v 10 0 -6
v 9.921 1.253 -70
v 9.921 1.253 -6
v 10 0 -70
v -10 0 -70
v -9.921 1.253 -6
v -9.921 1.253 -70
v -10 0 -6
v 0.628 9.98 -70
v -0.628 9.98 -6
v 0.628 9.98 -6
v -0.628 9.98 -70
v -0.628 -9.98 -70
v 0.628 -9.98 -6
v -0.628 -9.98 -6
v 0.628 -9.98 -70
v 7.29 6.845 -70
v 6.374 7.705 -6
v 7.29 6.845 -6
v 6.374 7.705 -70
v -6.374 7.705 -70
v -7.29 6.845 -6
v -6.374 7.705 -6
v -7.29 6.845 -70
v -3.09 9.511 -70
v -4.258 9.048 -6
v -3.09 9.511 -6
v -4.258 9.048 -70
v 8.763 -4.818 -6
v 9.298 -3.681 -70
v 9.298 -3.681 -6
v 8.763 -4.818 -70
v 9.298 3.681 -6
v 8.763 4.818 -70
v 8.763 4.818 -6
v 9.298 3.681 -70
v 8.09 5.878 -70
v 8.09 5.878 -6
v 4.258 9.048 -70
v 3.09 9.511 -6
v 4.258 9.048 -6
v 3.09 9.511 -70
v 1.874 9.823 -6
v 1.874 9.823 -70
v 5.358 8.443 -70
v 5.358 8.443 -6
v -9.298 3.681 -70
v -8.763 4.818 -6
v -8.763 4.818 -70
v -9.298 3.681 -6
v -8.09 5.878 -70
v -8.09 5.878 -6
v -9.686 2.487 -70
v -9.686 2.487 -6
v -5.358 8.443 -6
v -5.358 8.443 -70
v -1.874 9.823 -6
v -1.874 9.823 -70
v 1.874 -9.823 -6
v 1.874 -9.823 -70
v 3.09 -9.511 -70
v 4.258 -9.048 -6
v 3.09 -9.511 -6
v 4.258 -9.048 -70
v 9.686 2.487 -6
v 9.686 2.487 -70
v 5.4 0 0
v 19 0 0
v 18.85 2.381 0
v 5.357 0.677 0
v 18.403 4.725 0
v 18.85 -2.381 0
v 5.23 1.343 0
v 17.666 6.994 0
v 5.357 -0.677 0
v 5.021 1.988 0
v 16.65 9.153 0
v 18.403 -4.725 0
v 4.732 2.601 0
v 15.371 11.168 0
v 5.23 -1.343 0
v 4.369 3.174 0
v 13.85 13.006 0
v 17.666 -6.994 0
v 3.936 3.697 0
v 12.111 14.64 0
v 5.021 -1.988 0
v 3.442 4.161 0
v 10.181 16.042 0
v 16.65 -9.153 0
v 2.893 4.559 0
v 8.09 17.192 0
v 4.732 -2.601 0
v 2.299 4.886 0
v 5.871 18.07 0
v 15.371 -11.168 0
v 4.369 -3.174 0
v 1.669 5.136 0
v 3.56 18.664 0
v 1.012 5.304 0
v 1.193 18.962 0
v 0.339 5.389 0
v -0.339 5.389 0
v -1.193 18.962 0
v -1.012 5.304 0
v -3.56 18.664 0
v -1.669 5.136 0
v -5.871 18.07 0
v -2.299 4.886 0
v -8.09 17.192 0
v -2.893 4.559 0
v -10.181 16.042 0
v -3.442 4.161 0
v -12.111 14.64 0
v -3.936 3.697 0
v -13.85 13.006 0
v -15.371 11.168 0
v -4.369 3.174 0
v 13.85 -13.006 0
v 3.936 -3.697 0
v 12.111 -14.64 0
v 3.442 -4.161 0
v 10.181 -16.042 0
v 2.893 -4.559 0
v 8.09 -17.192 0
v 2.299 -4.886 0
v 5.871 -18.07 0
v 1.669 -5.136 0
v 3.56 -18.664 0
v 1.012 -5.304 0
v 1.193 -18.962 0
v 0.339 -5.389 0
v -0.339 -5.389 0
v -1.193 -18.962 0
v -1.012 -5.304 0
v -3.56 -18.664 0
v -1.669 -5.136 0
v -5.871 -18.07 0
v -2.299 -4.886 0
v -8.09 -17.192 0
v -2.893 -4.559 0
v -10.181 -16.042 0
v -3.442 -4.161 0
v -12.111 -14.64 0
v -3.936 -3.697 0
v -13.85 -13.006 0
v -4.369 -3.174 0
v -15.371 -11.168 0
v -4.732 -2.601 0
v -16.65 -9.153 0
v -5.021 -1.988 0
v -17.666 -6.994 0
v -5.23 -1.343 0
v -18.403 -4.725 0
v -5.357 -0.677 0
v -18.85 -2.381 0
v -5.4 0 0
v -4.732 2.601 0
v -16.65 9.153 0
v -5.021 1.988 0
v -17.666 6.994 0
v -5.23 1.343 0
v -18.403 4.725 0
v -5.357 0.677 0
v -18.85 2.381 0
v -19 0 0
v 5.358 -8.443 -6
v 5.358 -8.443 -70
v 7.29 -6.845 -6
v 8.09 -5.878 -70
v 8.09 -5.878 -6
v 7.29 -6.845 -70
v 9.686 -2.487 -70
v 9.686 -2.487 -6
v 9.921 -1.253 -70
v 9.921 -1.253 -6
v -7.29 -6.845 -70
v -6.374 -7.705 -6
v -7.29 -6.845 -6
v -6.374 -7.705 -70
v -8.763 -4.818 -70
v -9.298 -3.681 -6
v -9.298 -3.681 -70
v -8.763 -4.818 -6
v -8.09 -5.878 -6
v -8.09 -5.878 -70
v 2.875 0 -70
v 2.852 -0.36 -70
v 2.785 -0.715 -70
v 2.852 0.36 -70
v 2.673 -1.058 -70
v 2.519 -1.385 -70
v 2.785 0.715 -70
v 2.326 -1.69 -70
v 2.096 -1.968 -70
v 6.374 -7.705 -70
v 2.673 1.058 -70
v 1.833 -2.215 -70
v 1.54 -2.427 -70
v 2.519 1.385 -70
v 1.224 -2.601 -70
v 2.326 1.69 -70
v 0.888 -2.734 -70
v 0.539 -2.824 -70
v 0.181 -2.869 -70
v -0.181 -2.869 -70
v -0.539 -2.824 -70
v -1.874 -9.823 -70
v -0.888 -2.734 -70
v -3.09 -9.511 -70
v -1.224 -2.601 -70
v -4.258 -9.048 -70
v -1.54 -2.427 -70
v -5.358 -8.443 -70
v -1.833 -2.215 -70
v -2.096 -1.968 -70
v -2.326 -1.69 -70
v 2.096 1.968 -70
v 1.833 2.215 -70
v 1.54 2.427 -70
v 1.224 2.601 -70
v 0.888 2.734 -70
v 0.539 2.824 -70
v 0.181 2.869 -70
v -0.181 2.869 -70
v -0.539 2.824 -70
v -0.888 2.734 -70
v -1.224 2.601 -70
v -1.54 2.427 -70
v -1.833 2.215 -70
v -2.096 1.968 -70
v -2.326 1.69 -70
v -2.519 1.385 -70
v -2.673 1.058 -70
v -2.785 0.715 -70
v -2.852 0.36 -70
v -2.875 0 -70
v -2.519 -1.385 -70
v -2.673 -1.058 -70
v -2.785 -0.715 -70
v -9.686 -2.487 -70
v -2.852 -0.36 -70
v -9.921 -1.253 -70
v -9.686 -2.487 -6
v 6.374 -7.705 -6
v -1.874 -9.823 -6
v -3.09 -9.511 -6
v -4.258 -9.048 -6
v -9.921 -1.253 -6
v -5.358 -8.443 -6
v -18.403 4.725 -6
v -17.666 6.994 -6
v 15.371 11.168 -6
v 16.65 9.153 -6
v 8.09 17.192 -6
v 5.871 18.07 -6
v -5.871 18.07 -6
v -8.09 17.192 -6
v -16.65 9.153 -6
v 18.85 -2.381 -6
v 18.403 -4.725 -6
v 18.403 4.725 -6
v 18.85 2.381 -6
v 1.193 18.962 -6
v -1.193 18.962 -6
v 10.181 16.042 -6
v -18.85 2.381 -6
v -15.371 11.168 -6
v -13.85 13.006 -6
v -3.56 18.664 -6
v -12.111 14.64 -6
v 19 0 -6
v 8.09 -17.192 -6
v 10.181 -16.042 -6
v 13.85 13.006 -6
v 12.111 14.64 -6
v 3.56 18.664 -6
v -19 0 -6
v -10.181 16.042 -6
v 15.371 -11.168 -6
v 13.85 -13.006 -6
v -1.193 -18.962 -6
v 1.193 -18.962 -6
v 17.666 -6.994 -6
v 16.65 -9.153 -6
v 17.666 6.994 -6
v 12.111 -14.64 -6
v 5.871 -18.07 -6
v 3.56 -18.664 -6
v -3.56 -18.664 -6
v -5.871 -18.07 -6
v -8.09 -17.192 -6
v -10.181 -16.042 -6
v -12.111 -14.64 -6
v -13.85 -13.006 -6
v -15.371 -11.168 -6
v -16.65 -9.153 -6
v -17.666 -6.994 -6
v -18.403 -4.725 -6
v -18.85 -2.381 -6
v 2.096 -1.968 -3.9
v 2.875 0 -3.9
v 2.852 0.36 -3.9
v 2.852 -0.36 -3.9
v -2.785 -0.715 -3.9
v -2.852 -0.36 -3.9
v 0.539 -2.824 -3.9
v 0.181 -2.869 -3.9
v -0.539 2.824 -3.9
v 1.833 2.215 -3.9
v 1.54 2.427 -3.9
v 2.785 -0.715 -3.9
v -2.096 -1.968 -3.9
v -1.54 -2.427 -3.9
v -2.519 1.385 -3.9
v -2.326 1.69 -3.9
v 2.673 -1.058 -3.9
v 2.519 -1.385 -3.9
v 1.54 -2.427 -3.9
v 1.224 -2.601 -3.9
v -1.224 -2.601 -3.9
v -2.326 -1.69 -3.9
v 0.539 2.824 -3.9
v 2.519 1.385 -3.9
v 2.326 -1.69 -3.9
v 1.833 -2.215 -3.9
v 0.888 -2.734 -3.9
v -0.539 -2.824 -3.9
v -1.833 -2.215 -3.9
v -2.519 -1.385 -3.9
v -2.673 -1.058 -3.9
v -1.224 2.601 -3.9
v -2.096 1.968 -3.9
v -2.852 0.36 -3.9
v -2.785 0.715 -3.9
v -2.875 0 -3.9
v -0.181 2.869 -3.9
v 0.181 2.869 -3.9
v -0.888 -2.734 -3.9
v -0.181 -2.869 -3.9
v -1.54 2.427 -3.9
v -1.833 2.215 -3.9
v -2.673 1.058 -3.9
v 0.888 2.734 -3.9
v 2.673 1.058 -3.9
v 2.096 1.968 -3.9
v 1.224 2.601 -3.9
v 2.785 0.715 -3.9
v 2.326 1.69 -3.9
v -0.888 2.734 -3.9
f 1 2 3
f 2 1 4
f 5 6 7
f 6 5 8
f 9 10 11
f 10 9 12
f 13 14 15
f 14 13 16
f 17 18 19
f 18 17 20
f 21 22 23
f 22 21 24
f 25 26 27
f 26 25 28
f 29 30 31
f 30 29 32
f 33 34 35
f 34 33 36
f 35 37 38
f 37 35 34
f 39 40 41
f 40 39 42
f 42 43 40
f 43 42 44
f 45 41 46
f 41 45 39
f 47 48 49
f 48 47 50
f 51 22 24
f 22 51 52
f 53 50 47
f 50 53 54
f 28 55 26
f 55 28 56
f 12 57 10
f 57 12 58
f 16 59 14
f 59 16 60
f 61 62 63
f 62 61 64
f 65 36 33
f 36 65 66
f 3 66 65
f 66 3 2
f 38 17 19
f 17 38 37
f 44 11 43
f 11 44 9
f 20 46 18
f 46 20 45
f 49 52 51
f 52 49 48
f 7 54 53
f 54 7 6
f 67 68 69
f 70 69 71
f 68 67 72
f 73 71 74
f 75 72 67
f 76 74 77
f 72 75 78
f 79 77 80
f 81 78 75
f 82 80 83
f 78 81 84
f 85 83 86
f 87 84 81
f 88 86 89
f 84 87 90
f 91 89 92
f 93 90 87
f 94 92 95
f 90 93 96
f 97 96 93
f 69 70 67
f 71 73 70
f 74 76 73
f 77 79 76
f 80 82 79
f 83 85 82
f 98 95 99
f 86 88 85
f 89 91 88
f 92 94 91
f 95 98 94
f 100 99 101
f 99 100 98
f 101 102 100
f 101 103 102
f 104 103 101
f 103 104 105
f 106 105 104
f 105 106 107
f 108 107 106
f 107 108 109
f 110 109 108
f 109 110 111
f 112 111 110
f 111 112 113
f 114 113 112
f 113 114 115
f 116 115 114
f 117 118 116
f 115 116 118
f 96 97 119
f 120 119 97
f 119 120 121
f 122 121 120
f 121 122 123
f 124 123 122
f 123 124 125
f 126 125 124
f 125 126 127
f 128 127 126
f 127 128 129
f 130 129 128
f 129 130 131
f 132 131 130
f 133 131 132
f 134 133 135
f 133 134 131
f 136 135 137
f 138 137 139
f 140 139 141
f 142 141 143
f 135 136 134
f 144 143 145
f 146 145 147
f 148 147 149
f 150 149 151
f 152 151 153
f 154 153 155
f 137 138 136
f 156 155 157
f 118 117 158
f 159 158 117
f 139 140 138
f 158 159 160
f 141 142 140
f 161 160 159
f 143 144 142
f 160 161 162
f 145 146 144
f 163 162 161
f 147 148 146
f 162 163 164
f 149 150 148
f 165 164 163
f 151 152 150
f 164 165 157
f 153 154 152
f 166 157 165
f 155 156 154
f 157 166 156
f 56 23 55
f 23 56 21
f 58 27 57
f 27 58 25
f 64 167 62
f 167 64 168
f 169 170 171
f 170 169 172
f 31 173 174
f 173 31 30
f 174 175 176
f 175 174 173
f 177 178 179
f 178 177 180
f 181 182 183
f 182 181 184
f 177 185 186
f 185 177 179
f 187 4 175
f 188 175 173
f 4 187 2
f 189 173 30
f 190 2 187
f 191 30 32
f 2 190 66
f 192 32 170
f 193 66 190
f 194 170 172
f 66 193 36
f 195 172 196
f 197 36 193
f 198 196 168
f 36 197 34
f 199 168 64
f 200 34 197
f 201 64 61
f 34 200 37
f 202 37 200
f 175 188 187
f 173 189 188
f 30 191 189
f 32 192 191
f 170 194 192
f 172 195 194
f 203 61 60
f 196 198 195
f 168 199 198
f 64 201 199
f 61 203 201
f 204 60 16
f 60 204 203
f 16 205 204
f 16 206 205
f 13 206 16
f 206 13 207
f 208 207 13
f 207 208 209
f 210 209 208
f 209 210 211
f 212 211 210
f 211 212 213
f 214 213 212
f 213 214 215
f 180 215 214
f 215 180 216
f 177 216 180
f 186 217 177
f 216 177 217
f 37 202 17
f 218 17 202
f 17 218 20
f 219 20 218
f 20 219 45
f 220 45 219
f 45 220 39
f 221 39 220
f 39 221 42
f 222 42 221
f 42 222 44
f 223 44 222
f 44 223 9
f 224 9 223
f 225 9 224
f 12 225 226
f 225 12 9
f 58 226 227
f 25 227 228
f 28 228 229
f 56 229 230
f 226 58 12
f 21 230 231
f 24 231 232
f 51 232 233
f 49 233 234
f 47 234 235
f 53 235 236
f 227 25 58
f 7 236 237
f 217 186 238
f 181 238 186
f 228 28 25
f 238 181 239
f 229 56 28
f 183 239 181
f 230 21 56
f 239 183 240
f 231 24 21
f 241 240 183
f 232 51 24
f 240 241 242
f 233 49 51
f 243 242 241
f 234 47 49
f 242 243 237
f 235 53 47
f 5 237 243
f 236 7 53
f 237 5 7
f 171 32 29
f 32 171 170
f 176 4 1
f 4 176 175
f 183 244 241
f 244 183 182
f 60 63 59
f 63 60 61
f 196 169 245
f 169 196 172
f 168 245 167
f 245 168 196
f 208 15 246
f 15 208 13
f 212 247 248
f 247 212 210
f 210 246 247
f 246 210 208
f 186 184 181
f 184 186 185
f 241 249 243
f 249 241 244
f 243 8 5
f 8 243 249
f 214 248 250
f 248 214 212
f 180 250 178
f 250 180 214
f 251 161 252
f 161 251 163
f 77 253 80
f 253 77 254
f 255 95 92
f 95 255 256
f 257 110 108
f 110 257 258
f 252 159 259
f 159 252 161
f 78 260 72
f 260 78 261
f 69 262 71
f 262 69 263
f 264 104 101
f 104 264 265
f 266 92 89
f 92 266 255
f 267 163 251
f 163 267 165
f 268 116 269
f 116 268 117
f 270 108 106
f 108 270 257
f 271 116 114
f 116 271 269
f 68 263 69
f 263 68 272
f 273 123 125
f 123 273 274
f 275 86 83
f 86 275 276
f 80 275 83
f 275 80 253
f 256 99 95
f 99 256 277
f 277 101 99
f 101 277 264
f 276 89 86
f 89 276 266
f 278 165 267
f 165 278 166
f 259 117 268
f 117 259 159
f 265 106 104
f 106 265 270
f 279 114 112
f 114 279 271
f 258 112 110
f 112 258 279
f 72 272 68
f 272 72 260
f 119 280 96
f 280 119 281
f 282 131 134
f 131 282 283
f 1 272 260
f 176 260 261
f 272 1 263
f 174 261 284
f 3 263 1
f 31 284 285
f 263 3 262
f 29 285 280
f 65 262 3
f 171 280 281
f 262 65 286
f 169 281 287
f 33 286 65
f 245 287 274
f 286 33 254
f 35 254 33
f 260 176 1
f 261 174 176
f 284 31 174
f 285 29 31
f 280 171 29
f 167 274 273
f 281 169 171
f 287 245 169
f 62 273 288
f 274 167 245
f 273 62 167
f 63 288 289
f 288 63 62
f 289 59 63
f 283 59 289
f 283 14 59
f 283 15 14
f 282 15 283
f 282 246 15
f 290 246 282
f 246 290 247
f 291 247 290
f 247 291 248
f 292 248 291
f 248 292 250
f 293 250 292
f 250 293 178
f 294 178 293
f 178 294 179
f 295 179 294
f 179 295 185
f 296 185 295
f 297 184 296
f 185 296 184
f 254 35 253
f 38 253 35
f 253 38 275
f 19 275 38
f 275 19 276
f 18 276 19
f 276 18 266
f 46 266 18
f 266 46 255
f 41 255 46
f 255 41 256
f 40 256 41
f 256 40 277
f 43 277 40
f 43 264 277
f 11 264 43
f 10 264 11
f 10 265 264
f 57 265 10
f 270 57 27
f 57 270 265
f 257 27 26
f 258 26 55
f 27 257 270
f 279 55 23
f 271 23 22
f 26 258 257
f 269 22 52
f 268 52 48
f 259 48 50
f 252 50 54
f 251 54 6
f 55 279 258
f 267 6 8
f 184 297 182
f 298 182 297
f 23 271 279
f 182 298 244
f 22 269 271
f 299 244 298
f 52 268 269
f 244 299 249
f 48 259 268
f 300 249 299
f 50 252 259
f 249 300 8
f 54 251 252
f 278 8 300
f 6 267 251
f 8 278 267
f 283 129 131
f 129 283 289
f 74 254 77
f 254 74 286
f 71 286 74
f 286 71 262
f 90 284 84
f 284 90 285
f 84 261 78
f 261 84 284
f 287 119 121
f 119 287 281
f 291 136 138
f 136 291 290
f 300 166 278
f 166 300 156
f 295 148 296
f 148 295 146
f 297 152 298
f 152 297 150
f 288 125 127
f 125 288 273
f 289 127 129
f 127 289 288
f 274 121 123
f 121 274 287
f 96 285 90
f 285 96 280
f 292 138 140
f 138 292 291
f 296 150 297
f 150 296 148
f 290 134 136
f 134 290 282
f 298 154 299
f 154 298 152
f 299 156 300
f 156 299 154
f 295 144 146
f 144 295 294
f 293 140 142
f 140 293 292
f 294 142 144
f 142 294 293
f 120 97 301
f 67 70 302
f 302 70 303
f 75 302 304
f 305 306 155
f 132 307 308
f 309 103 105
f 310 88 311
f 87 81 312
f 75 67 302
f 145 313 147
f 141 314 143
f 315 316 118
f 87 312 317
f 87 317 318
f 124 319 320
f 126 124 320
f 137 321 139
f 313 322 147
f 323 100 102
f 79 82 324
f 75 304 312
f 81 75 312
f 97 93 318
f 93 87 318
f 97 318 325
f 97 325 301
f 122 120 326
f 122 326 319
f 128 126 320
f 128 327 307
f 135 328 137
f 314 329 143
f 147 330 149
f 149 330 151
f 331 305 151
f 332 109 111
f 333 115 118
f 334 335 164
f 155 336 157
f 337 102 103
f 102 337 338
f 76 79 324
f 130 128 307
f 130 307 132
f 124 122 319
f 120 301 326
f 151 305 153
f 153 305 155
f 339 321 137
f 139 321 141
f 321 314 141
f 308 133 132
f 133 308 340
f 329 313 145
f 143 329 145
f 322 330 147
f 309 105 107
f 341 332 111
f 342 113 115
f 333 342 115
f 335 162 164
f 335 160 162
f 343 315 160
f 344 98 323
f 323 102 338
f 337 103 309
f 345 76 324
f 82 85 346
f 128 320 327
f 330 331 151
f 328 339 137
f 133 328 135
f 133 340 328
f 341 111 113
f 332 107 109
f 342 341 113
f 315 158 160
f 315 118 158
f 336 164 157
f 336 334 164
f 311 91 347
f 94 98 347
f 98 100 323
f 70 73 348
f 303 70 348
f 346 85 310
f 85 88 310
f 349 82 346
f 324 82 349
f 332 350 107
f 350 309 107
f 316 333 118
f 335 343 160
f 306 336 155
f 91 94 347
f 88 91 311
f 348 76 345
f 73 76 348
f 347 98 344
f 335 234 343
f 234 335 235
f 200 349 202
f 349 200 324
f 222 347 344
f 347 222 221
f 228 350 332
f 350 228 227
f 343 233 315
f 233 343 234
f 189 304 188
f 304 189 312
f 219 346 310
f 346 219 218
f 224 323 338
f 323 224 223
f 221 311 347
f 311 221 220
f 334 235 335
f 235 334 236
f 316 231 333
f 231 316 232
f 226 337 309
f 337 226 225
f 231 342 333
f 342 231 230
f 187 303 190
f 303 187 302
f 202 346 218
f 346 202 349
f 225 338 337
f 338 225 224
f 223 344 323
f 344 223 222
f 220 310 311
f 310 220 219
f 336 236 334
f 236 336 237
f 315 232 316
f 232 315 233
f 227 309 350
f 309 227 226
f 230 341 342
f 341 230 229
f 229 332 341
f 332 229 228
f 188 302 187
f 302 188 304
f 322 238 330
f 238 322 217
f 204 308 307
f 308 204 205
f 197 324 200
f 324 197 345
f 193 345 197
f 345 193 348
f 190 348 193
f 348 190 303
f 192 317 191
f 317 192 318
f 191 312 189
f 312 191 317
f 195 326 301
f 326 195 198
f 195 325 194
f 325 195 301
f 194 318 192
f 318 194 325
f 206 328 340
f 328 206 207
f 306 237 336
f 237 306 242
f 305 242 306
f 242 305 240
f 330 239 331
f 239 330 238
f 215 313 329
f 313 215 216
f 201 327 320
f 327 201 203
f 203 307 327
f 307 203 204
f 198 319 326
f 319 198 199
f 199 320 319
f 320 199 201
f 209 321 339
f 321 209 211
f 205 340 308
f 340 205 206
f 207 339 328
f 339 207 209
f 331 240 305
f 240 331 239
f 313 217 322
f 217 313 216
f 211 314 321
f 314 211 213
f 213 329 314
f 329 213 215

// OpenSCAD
$fn = 50;


difference() {
	union() {
		translate(v = [0, 0, -70.0000000000]) {
			cylinder(h = 70, r = 10.0000000000);
		}
		translate(v = [0, 0, -6.0000000000]) {
			cylinder(h = 6, r = 19.0000000000);
		}
	}
	union() {
		translate(v = [0, 0, 0]) {
			rotate(a = [0, 0, 0]) {
				difference() {
					union() {
						#translate(v = [0, 0, -70.0000000000]) {
							cylinder(h = 70, r = 2.6000000000);
						}
						#translate(v = [0, 0, -3.9000000000]) {
							cylinder(h = 3.9000000000, r = 10.0000000000, r1 = 2.8750000000, r2 = 5.4000000000);
						}
						#translate(v = [0, 0, -70.0000000000]) {
							cylinder(h = 70, r = 2.8750000000);
						}
						#translate(v = [0, 0, -70.0000000000]) {
							cylinder(h = 70, r = 2.6000000000);
						}
					}
					union();
				}
			}
		}
	}
}
